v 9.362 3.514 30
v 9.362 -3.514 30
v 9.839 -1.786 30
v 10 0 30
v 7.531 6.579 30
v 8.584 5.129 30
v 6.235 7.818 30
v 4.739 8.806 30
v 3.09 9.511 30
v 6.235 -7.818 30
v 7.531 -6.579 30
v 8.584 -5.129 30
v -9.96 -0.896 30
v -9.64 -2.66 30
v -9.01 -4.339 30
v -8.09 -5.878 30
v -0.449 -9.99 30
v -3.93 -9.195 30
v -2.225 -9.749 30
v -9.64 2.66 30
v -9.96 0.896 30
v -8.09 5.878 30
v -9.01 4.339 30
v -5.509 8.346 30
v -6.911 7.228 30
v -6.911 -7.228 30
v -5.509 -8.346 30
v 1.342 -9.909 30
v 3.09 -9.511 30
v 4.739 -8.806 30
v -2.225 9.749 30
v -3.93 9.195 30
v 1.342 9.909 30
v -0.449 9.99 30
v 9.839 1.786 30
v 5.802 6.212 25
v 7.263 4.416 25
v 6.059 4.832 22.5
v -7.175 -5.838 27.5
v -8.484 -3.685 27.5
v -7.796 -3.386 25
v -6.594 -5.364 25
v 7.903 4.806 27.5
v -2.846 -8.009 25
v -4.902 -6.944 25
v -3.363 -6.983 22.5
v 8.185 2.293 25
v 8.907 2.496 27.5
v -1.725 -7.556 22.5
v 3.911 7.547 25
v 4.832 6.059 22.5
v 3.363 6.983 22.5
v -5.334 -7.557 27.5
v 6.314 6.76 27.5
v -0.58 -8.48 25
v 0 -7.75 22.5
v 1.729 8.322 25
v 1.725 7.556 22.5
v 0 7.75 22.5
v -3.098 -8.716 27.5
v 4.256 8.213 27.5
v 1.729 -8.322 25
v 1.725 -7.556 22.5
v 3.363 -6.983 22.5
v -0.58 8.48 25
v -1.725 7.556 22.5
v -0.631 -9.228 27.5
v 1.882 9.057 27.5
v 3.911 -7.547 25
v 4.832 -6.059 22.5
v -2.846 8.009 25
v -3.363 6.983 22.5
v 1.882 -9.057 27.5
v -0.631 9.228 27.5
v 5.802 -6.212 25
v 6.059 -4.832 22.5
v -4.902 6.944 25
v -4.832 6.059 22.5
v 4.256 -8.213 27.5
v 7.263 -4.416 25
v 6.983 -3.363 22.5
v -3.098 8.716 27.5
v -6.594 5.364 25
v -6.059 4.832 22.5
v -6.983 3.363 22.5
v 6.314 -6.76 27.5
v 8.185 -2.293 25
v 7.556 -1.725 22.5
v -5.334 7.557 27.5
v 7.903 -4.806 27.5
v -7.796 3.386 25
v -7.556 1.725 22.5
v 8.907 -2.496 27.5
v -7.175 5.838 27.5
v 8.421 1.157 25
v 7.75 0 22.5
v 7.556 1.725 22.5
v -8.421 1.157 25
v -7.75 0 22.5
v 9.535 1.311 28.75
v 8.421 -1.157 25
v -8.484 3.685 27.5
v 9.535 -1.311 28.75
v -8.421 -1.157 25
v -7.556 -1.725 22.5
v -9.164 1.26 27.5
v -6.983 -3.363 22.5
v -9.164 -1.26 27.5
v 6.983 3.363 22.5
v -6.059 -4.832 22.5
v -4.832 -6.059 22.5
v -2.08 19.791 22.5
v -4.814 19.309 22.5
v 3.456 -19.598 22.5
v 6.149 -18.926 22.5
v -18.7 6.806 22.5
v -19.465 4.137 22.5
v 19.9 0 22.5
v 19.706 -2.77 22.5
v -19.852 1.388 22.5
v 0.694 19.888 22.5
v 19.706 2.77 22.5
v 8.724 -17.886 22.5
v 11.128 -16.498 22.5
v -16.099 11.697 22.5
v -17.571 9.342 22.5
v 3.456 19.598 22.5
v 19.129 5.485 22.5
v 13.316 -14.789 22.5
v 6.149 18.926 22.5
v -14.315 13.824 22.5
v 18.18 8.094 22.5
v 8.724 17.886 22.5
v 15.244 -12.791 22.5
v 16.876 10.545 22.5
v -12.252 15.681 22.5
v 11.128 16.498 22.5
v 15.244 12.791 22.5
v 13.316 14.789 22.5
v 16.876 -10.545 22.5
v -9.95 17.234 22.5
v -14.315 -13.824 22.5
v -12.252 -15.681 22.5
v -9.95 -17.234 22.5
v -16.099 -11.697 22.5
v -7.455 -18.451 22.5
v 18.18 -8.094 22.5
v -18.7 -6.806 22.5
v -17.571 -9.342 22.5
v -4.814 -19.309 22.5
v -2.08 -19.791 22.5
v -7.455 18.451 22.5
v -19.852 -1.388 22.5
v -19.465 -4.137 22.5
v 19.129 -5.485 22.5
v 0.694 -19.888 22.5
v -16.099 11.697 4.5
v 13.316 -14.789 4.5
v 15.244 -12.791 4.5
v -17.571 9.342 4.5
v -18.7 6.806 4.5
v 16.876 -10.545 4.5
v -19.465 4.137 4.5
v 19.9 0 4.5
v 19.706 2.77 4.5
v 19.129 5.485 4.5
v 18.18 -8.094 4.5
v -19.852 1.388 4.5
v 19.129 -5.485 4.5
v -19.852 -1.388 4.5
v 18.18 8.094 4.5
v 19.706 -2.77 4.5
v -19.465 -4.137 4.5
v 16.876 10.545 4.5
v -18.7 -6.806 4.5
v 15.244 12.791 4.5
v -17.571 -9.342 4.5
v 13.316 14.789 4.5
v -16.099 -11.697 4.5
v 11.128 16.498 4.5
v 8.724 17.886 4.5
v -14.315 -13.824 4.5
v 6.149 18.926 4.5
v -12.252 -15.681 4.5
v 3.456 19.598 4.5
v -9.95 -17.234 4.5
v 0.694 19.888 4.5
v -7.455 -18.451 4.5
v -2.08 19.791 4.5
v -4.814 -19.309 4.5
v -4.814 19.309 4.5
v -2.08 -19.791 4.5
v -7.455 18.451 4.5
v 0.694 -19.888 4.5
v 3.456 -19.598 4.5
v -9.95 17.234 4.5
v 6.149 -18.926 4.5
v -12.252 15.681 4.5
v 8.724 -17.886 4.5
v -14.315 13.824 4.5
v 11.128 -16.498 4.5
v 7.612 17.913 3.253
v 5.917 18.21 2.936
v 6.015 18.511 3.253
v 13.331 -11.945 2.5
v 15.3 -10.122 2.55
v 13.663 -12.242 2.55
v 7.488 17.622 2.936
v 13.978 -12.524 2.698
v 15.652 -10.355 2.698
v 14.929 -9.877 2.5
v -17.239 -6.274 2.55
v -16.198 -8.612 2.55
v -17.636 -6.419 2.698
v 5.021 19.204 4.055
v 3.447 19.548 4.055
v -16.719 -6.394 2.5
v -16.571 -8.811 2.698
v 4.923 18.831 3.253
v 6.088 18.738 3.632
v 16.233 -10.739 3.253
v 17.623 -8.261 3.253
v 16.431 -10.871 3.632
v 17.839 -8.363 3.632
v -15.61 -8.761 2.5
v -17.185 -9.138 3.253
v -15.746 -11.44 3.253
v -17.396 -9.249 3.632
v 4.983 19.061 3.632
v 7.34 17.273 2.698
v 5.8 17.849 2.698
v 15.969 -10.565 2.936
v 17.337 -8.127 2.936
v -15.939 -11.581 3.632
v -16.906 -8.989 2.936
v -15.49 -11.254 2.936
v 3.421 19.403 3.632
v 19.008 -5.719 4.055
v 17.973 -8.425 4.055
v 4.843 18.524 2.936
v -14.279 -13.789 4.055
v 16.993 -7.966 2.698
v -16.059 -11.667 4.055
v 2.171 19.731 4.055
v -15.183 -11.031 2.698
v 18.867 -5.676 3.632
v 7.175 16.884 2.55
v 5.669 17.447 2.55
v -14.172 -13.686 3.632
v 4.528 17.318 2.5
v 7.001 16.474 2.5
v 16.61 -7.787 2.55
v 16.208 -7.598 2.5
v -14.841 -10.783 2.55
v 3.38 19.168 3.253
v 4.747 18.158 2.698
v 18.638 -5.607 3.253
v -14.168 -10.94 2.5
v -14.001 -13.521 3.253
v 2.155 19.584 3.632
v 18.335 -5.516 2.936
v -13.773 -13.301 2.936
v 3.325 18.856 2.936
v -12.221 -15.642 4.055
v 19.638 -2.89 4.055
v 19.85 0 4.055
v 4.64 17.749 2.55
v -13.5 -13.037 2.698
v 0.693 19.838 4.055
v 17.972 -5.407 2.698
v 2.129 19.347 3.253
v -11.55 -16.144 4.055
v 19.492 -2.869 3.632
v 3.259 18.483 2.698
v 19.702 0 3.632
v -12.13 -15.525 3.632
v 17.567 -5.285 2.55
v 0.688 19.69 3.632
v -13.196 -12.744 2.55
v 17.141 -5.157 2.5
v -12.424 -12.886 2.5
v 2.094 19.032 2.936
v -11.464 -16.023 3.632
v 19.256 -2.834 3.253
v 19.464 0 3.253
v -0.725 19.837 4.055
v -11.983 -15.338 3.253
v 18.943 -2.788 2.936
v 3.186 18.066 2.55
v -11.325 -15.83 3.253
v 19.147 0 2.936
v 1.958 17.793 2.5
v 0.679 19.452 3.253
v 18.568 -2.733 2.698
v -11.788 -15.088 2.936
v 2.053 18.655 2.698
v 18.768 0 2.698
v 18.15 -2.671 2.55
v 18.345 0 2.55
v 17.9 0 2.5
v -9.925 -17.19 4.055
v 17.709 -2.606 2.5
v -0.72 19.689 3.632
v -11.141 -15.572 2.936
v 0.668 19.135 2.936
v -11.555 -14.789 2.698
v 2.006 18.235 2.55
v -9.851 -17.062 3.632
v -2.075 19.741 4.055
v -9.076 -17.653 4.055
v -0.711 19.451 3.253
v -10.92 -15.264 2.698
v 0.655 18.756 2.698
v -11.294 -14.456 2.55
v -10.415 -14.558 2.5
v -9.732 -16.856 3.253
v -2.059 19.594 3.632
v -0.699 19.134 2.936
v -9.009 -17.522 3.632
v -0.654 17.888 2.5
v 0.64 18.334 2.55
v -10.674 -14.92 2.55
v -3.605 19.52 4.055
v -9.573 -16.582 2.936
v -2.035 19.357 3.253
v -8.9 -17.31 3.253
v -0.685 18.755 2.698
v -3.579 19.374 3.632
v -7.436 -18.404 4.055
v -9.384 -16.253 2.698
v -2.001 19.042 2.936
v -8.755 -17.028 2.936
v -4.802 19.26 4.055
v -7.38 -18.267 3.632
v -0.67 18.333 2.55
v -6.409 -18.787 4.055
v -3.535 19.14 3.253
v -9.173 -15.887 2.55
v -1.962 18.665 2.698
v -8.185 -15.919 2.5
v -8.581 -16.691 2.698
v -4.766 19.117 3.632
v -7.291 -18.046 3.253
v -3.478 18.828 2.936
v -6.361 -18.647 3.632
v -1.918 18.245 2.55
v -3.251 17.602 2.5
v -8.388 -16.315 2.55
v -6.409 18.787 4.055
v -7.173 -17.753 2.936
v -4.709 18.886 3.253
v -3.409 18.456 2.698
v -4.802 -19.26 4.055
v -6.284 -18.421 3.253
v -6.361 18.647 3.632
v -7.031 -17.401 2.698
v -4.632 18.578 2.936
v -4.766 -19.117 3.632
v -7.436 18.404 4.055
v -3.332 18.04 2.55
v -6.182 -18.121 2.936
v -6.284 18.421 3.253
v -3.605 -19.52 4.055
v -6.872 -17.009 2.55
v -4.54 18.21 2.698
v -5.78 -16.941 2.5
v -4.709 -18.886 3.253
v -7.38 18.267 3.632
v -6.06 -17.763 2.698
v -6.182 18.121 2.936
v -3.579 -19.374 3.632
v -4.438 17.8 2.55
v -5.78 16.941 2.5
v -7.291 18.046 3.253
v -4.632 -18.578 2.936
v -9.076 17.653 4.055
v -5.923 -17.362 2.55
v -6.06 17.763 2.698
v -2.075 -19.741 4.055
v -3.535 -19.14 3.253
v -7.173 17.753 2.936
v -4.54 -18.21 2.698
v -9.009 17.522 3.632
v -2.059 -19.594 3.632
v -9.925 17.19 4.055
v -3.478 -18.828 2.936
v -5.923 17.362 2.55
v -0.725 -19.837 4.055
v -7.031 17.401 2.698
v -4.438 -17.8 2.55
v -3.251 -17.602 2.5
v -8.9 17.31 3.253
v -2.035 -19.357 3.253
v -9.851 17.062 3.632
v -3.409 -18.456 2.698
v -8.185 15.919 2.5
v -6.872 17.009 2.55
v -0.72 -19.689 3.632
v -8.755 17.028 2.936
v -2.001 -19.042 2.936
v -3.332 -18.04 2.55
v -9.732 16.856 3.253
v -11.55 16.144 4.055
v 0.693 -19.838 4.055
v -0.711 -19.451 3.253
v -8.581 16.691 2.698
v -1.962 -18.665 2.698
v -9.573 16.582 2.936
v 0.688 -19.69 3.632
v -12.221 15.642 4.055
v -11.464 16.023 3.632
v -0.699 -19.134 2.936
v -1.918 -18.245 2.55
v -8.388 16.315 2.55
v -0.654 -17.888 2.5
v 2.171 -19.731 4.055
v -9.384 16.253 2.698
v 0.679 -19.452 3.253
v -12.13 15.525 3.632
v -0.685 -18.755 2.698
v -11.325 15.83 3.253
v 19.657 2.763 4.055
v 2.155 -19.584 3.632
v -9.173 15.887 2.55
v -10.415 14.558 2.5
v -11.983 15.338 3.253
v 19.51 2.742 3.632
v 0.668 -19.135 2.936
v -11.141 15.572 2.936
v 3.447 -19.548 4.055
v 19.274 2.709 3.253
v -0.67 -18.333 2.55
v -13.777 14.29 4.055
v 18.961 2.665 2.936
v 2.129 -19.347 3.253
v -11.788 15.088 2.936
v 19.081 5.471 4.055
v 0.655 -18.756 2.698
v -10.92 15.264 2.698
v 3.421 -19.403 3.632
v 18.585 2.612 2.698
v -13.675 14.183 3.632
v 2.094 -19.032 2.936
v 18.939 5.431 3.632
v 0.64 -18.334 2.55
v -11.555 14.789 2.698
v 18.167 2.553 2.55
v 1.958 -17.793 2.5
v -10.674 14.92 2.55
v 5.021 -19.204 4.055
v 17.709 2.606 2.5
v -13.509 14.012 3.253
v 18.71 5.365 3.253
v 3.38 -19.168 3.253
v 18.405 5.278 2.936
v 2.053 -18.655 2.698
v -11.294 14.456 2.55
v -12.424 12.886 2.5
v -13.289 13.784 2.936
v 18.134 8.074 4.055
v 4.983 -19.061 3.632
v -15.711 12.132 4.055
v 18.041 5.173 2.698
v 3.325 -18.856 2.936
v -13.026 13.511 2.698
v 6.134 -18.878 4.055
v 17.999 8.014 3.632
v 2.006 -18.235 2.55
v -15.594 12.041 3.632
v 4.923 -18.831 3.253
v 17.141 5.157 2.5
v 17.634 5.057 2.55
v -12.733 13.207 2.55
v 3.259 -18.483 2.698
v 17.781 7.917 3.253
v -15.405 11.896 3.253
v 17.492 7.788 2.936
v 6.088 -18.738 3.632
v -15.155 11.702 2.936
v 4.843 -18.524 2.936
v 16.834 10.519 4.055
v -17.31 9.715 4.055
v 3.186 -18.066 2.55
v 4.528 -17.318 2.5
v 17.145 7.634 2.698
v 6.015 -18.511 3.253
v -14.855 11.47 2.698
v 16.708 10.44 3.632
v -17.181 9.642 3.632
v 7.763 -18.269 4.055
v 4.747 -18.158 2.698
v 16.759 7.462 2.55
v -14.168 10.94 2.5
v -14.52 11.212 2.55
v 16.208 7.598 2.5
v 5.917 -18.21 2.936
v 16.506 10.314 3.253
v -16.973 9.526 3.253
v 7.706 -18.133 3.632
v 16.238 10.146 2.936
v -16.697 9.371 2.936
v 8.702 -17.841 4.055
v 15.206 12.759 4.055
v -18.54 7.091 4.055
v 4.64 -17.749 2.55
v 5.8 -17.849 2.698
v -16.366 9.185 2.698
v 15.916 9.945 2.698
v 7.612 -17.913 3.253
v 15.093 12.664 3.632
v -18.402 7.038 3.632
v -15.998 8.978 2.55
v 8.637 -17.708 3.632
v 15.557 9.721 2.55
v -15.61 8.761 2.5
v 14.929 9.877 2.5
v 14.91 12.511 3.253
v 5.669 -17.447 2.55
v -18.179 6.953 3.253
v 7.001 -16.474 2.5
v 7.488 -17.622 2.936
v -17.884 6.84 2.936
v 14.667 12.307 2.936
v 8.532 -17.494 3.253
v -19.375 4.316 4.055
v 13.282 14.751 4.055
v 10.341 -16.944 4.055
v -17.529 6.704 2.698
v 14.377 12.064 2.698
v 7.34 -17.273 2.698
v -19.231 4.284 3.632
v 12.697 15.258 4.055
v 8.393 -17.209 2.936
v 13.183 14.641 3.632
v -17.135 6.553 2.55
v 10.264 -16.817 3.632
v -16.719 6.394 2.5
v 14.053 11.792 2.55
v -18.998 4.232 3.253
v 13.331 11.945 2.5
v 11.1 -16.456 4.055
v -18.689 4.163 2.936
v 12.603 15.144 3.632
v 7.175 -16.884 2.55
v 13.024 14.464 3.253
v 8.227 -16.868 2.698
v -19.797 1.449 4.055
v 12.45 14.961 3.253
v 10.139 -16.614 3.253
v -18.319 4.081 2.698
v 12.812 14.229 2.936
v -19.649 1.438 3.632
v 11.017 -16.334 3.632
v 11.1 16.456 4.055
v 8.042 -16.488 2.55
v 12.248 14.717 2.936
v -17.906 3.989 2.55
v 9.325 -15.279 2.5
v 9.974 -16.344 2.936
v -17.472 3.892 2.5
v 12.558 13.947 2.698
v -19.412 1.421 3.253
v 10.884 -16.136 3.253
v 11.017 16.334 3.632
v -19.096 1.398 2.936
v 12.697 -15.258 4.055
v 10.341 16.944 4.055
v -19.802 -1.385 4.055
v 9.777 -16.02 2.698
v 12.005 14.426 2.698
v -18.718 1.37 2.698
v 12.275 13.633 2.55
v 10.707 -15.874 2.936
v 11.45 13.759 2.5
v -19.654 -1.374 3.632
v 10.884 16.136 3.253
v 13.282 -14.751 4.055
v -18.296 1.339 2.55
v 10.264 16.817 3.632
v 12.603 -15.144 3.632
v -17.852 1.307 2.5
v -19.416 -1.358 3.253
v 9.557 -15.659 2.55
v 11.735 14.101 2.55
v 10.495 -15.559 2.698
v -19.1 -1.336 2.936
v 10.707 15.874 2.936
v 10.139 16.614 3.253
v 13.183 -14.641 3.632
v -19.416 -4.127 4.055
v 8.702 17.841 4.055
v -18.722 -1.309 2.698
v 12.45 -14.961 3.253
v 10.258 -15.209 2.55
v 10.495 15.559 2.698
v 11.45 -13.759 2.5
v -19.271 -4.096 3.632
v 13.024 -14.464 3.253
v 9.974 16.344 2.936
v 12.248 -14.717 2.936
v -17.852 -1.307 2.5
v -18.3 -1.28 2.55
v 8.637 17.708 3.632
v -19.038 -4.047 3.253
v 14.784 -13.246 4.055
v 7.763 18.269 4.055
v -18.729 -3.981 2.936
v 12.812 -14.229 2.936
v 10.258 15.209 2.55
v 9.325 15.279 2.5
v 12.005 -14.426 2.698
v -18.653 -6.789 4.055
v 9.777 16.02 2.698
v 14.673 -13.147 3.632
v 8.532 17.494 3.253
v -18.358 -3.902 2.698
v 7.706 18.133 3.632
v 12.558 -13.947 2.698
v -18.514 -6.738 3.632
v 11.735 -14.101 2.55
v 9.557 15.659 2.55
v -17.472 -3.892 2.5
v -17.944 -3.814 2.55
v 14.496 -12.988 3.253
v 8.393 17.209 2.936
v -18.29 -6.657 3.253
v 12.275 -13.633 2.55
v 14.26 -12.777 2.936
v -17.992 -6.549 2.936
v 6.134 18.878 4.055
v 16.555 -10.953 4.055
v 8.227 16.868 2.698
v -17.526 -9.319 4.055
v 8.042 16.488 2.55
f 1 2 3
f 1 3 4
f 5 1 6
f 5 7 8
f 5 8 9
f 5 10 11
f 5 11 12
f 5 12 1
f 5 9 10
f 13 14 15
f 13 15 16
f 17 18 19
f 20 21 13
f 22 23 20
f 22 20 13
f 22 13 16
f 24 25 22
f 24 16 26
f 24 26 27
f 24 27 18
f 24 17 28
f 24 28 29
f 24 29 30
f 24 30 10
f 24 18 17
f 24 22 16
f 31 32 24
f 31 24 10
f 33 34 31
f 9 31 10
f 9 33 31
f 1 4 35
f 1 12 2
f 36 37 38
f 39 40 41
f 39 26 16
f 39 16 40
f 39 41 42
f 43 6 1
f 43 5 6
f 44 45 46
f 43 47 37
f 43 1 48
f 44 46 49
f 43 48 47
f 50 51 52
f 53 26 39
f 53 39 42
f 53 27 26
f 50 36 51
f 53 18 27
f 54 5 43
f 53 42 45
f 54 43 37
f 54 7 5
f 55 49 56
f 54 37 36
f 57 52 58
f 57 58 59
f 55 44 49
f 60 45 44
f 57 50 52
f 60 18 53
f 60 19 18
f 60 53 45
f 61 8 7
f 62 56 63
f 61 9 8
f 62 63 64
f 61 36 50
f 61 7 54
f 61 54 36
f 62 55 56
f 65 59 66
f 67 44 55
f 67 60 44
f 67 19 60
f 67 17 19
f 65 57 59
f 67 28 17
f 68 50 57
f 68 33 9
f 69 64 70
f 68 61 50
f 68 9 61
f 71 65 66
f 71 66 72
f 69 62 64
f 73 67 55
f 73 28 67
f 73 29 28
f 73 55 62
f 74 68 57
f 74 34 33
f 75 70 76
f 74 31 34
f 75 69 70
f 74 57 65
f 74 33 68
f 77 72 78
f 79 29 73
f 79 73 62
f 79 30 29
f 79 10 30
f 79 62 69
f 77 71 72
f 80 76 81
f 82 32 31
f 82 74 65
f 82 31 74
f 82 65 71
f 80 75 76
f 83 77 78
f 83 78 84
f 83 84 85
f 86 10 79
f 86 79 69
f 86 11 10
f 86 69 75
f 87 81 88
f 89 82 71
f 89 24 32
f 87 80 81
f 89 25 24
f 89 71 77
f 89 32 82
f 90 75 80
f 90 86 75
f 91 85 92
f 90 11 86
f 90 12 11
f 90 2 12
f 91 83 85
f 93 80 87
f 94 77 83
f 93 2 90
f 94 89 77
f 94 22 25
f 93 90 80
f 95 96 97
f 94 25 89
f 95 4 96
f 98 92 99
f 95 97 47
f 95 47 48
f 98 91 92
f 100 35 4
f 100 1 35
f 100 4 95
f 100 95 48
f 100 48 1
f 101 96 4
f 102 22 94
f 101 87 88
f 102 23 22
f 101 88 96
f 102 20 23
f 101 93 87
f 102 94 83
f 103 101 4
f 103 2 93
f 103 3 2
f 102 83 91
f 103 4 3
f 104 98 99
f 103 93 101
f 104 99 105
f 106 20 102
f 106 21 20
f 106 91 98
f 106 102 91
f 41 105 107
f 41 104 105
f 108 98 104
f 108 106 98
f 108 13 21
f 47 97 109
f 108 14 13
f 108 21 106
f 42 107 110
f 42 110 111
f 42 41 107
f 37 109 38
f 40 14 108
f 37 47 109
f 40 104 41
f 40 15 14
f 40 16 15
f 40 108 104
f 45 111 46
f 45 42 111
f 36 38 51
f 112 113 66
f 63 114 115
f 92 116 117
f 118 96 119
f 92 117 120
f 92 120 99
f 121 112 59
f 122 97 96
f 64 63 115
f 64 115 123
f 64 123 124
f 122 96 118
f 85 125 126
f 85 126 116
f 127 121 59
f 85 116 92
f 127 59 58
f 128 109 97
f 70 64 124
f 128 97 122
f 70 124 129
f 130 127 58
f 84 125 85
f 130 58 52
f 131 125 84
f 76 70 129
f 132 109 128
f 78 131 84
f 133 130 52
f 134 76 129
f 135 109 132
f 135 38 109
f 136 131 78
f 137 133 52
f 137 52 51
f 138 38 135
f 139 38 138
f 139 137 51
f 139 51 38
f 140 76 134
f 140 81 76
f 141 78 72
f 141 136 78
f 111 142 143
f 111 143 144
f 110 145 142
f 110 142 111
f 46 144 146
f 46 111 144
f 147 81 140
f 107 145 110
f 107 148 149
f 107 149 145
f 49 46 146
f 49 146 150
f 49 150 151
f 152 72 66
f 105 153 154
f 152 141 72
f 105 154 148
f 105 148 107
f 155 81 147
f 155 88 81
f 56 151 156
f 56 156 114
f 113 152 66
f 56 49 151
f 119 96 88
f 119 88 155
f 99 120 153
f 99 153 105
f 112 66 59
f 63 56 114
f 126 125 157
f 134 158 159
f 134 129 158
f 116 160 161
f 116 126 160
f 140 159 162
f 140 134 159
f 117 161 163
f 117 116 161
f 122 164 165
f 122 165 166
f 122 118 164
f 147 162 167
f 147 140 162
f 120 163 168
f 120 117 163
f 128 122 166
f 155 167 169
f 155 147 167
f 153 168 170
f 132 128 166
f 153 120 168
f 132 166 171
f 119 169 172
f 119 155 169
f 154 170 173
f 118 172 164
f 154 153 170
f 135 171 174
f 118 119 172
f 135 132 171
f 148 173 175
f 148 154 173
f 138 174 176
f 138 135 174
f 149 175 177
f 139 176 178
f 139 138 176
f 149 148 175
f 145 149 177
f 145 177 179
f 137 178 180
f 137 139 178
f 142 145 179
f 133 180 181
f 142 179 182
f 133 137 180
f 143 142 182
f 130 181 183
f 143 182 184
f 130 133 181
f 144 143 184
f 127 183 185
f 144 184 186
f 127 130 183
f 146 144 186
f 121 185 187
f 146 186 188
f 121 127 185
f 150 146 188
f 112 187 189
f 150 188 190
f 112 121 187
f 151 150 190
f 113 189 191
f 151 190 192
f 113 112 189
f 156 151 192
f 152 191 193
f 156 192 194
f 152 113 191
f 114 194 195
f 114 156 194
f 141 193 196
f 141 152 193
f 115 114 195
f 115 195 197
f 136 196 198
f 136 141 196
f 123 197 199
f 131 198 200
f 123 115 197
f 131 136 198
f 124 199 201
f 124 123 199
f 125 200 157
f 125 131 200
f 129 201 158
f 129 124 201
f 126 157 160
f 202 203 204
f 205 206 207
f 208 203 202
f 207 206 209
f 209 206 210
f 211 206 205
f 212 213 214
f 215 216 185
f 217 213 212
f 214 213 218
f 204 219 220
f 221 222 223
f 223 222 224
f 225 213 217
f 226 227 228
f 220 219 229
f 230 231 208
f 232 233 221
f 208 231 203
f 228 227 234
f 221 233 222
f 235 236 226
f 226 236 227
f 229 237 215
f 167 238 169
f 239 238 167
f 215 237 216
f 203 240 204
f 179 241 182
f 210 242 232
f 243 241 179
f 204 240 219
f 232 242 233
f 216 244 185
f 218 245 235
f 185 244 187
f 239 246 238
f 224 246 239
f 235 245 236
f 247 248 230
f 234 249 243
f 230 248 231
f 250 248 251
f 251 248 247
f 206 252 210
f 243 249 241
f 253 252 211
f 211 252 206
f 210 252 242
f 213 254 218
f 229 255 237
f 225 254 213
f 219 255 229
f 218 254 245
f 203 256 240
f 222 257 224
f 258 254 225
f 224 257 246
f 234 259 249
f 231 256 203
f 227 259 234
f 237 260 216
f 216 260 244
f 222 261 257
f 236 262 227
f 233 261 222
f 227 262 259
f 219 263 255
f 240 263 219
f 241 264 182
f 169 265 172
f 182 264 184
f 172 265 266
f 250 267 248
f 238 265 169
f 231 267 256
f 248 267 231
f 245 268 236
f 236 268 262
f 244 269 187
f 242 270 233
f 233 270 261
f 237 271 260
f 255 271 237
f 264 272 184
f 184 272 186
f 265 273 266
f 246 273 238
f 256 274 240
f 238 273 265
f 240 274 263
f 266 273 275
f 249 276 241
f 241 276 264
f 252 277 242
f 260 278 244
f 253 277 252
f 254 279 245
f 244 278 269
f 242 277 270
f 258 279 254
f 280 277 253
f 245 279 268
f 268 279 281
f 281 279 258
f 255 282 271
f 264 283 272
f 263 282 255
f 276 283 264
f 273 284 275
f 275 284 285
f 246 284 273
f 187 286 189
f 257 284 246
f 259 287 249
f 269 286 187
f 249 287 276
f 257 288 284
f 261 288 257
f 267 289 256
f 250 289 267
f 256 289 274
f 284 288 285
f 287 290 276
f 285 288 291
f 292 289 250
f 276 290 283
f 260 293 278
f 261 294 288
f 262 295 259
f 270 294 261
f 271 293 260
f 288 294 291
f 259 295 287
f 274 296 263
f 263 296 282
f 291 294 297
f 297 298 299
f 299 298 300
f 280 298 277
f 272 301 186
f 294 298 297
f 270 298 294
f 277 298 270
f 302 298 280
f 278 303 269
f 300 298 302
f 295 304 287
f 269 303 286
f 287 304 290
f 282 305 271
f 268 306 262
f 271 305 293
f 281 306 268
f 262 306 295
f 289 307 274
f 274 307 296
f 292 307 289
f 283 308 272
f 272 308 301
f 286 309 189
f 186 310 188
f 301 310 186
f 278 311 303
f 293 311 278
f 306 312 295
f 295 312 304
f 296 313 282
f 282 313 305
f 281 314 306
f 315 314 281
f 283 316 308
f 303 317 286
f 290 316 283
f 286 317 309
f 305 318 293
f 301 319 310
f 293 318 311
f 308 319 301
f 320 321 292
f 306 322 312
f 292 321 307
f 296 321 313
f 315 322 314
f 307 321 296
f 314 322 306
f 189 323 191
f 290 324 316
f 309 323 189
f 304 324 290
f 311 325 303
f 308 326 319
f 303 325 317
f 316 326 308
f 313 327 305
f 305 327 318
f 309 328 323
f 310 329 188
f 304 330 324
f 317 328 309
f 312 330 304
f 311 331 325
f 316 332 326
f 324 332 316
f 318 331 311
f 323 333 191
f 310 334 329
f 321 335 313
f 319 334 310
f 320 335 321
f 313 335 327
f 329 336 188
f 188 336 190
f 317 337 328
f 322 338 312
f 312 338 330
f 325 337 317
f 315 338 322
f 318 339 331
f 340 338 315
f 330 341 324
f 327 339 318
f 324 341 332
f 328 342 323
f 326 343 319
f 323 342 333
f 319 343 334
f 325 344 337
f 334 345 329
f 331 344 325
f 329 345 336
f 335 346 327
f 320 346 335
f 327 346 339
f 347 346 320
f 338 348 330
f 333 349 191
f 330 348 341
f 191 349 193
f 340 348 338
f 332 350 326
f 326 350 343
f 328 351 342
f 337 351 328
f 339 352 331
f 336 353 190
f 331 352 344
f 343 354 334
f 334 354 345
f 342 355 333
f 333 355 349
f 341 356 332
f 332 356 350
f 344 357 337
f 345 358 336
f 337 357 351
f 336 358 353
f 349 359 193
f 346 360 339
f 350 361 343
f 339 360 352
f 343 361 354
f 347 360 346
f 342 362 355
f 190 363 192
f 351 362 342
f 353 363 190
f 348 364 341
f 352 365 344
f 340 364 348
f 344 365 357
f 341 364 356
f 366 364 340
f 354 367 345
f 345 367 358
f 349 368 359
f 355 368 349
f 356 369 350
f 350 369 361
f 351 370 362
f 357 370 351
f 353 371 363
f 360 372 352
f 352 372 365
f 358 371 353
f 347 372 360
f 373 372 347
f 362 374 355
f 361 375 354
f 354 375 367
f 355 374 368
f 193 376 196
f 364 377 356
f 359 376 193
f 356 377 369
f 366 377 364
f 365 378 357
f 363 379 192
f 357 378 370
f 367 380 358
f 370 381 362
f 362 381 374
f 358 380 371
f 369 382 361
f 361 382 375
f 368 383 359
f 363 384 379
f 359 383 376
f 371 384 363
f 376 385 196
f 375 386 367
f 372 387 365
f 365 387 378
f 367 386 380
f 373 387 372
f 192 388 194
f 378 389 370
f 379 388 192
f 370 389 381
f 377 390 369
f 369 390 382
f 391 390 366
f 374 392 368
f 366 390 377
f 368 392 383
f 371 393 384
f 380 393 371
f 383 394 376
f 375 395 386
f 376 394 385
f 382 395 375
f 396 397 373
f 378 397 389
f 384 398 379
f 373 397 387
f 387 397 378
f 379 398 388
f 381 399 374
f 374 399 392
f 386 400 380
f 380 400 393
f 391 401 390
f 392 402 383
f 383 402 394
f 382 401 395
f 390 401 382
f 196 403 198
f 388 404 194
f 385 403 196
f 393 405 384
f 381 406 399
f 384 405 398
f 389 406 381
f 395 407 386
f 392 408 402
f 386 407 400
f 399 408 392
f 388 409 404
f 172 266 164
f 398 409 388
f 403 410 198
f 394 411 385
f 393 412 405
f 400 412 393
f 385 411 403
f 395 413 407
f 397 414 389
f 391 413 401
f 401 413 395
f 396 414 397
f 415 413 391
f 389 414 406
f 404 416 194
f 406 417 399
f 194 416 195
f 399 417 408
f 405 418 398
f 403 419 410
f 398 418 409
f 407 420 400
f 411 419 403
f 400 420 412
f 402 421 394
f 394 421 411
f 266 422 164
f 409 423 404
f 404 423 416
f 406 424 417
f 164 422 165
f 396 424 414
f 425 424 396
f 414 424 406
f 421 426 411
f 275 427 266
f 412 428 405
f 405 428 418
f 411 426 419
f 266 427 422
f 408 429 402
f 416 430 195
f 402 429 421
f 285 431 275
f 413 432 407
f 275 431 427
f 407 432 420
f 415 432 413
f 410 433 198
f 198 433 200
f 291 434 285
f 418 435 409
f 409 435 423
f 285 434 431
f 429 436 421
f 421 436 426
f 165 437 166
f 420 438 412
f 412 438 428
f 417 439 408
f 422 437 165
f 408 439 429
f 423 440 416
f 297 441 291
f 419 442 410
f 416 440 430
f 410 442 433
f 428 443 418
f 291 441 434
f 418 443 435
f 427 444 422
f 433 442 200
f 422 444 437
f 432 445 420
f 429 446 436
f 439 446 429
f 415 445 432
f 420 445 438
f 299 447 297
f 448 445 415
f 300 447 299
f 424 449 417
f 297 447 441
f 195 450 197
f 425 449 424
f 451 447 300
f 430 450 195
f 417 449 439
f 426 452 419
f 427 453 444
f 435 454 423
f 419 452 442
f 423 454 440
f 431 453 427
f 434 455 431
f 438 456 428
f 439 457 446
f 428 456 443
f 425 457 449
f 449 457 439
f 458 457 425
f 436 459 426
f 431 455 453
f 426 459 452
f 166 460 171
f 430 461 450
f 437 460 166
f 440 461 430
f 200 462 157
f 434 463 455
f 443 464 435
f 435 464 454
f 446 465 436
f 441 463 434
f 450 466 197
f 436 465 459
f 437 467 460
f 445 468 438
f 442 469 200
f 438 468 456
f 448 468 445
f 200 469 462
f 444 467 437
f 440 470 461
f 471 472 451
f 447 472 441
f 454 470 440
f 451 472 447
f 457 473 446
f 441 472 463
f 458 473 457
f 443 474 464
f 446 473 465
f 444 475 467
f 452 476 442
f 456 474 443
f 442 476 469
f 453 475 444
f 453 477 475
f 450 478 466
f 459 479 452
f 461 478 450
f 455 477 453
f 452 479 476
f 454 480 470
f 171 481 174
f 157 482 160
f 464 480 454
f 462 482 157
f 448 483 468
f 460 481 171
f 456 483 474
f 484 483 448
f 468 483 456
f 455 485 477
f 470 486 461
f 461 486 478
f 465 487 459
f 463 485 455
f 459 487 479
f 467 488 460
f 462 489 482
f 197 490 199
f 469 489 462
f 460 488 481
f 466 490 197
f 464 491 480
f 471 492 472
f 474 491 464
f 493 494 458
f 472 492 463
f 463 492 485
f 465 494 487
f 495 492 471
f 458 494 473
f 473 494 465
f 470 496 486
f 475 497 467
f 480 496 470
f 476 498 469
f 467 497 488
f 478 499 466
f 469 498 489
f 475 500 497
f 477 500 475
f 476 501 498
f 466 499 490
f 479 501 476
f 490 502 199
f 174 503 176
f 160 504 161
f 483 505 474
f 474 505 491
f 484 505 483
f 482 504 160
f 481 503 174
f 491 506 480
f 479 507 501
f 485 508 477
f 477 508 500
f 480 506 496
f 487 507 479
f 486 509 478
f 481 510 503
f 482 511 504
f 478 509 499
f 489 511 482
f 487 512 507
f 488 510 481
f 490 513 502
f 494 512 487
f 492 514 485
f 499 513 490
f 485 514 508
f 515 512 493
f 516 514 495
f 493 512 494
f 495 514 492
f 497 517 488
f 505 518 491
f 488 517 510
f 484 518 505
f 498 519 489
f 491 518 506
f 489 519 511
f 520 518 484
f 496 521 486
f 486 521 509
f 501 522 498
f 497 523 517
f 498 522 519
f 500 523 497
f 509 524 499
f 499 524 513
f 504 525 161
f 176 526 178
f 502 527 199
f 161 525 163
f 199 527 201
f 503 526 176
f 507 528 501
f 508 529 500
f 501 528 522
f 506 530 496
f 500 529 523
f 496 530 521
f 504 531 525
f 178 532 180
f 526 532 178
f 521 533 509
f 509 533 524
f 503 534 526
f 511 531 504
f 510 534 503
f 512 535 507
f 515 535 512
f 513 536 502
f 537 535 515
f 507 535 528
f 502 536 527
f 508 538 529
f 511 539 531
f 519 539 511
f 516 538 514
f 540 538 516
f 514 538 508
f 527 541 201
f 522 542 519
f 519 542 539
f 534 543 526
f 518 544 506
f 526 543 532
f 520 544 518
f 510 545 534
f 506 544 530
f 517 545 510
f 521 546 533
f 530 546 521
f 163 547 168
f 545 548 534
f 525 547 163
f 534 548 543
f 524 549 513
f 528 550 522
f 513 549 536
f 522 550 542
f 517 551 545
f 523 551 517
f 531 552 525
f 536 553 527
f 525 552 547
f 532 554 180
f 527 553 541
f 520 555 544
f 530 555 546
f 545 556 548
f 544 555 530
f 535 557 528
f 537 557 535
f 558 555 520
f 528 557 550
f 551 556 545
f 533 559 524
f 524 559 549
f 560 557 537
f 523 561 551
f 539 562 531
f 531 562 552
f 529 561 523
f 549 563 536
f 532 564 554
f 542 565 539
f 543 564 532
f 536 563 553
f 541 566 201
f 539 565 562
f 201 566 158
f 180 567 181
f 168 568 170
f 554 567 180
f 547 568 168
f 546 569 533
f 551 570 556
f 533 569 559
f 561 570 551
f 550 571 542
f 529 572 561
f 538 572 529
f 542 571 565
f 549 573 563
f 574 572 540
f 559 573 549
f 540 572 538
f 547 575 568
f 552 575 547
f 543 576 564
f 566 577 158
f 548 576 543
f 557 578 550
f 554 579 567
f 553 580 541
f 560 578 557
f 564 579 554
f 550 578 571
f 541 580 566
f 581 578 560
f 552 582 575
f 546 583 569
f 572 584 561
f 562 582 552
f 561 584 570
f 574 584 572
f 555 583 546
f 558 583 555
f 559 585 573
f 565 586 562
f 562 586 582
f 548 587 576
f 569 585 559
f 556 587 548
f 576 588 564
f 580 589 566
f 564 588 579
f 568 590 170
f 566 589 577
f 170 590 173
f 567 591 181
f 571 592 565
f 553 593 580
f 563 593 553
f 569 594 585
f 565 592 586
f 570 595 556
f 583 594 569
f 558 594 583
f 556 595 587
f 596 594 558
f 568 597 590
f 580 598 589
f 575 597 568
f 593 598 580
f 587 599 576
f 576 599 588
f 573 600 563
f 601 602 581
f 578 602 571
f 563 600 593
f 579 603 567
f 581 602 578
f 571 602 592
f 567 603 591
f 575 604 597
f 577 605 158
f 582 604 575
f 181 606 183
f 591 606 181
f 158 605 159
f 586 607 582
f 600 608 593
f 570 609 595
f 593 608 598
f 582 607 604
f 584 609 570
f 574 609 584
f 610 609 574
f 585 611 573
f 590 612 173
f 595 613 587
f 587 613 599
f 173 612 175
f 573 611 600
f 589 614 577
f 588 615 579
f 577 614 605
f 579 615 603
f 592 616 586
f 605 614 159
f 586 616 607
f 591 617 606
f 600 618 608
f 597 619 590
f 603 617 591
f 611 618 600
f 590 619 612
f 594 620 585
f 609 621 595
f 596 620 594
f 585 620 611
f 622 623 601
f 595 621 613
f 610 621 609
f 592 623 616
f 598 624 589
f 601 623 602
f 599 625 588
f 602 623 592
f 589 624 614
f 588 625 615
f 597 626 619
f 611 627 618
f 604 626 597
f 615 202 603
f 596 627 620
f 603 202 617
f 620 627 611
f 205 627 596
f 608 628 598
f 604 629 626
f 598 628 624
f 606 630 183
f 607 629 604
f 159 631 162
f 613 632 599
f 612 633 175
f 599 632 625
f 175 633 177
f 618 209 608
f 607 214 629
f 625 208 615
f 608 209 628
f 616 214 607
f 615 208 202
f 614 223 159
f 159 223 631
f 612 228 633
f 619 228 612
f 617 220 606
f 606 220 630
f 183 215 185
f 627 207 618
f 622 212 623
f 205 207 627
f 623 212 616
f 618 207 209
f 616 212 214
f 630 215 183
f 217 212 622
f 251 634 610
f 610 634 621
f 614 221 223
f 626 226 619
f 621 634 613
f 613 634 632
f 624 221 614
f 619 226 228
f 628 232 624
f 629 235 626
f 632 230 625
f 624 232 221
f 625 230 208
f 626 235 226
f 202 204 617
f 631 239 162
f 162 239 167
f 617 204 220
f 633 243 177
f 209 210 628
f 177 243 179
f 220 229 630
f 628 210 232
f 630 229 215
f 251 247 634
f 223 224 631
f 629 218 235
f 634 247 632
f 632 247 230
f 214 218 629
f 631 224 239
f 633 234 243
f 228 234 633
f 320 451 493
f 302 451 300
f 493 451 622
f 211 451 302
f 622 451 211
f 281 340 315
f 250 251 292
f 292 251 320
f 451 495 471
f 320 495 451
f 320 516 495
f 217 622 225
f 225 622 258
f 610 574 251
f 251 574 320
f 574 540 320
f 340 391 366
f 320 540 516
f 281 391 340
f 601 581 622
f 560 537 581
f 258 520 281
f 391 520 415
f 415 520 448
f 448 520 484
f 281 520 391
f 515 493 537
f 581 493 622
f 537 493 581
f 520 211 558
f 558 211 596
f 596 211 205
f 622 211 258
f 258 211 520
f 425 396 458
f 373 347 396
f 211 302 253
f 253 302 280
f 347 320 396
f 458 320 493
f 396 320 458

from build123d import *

# Parameters (mm, degrees)
CYLINDER002_R     = 19.9
CYLINDER002_DEPTH = 20
FILLET_R          = 2


with BuildPart() as fillet_body:
    # Cylinder002 → Cylinder002 (new body)
    with BuildSketch(Plane.XY.offset(2.5)):
        Circle(CYLINDER002_R)
    extrude(amount=CYLINDER002_DEPTH)

    # Fillet
    fillet_edges = [fillet_body.edges().sort_by_distance(p)[0] for p in [
        (-19.9, 0, 2.5),
    ]]
    fillet(fillet_edges, radius=FILLET_R)


with BuildPart() as fusion:
    # Cone → Cone (revolve)
    with BuildSketch(Plane(origin=(0, 0, 20), x_dir=(1, 0, 0), z_dir=(0, -1, 0))):
        Polygon((0, 0), (7, 0), (10, 10), (0, 10), align=None)
    revolve(axis=Axis((0, 0, 20), (0, 0, 1)))

    # Fusion: union Fillet body
    add(fillet_body.part)


solid = fusion.part
